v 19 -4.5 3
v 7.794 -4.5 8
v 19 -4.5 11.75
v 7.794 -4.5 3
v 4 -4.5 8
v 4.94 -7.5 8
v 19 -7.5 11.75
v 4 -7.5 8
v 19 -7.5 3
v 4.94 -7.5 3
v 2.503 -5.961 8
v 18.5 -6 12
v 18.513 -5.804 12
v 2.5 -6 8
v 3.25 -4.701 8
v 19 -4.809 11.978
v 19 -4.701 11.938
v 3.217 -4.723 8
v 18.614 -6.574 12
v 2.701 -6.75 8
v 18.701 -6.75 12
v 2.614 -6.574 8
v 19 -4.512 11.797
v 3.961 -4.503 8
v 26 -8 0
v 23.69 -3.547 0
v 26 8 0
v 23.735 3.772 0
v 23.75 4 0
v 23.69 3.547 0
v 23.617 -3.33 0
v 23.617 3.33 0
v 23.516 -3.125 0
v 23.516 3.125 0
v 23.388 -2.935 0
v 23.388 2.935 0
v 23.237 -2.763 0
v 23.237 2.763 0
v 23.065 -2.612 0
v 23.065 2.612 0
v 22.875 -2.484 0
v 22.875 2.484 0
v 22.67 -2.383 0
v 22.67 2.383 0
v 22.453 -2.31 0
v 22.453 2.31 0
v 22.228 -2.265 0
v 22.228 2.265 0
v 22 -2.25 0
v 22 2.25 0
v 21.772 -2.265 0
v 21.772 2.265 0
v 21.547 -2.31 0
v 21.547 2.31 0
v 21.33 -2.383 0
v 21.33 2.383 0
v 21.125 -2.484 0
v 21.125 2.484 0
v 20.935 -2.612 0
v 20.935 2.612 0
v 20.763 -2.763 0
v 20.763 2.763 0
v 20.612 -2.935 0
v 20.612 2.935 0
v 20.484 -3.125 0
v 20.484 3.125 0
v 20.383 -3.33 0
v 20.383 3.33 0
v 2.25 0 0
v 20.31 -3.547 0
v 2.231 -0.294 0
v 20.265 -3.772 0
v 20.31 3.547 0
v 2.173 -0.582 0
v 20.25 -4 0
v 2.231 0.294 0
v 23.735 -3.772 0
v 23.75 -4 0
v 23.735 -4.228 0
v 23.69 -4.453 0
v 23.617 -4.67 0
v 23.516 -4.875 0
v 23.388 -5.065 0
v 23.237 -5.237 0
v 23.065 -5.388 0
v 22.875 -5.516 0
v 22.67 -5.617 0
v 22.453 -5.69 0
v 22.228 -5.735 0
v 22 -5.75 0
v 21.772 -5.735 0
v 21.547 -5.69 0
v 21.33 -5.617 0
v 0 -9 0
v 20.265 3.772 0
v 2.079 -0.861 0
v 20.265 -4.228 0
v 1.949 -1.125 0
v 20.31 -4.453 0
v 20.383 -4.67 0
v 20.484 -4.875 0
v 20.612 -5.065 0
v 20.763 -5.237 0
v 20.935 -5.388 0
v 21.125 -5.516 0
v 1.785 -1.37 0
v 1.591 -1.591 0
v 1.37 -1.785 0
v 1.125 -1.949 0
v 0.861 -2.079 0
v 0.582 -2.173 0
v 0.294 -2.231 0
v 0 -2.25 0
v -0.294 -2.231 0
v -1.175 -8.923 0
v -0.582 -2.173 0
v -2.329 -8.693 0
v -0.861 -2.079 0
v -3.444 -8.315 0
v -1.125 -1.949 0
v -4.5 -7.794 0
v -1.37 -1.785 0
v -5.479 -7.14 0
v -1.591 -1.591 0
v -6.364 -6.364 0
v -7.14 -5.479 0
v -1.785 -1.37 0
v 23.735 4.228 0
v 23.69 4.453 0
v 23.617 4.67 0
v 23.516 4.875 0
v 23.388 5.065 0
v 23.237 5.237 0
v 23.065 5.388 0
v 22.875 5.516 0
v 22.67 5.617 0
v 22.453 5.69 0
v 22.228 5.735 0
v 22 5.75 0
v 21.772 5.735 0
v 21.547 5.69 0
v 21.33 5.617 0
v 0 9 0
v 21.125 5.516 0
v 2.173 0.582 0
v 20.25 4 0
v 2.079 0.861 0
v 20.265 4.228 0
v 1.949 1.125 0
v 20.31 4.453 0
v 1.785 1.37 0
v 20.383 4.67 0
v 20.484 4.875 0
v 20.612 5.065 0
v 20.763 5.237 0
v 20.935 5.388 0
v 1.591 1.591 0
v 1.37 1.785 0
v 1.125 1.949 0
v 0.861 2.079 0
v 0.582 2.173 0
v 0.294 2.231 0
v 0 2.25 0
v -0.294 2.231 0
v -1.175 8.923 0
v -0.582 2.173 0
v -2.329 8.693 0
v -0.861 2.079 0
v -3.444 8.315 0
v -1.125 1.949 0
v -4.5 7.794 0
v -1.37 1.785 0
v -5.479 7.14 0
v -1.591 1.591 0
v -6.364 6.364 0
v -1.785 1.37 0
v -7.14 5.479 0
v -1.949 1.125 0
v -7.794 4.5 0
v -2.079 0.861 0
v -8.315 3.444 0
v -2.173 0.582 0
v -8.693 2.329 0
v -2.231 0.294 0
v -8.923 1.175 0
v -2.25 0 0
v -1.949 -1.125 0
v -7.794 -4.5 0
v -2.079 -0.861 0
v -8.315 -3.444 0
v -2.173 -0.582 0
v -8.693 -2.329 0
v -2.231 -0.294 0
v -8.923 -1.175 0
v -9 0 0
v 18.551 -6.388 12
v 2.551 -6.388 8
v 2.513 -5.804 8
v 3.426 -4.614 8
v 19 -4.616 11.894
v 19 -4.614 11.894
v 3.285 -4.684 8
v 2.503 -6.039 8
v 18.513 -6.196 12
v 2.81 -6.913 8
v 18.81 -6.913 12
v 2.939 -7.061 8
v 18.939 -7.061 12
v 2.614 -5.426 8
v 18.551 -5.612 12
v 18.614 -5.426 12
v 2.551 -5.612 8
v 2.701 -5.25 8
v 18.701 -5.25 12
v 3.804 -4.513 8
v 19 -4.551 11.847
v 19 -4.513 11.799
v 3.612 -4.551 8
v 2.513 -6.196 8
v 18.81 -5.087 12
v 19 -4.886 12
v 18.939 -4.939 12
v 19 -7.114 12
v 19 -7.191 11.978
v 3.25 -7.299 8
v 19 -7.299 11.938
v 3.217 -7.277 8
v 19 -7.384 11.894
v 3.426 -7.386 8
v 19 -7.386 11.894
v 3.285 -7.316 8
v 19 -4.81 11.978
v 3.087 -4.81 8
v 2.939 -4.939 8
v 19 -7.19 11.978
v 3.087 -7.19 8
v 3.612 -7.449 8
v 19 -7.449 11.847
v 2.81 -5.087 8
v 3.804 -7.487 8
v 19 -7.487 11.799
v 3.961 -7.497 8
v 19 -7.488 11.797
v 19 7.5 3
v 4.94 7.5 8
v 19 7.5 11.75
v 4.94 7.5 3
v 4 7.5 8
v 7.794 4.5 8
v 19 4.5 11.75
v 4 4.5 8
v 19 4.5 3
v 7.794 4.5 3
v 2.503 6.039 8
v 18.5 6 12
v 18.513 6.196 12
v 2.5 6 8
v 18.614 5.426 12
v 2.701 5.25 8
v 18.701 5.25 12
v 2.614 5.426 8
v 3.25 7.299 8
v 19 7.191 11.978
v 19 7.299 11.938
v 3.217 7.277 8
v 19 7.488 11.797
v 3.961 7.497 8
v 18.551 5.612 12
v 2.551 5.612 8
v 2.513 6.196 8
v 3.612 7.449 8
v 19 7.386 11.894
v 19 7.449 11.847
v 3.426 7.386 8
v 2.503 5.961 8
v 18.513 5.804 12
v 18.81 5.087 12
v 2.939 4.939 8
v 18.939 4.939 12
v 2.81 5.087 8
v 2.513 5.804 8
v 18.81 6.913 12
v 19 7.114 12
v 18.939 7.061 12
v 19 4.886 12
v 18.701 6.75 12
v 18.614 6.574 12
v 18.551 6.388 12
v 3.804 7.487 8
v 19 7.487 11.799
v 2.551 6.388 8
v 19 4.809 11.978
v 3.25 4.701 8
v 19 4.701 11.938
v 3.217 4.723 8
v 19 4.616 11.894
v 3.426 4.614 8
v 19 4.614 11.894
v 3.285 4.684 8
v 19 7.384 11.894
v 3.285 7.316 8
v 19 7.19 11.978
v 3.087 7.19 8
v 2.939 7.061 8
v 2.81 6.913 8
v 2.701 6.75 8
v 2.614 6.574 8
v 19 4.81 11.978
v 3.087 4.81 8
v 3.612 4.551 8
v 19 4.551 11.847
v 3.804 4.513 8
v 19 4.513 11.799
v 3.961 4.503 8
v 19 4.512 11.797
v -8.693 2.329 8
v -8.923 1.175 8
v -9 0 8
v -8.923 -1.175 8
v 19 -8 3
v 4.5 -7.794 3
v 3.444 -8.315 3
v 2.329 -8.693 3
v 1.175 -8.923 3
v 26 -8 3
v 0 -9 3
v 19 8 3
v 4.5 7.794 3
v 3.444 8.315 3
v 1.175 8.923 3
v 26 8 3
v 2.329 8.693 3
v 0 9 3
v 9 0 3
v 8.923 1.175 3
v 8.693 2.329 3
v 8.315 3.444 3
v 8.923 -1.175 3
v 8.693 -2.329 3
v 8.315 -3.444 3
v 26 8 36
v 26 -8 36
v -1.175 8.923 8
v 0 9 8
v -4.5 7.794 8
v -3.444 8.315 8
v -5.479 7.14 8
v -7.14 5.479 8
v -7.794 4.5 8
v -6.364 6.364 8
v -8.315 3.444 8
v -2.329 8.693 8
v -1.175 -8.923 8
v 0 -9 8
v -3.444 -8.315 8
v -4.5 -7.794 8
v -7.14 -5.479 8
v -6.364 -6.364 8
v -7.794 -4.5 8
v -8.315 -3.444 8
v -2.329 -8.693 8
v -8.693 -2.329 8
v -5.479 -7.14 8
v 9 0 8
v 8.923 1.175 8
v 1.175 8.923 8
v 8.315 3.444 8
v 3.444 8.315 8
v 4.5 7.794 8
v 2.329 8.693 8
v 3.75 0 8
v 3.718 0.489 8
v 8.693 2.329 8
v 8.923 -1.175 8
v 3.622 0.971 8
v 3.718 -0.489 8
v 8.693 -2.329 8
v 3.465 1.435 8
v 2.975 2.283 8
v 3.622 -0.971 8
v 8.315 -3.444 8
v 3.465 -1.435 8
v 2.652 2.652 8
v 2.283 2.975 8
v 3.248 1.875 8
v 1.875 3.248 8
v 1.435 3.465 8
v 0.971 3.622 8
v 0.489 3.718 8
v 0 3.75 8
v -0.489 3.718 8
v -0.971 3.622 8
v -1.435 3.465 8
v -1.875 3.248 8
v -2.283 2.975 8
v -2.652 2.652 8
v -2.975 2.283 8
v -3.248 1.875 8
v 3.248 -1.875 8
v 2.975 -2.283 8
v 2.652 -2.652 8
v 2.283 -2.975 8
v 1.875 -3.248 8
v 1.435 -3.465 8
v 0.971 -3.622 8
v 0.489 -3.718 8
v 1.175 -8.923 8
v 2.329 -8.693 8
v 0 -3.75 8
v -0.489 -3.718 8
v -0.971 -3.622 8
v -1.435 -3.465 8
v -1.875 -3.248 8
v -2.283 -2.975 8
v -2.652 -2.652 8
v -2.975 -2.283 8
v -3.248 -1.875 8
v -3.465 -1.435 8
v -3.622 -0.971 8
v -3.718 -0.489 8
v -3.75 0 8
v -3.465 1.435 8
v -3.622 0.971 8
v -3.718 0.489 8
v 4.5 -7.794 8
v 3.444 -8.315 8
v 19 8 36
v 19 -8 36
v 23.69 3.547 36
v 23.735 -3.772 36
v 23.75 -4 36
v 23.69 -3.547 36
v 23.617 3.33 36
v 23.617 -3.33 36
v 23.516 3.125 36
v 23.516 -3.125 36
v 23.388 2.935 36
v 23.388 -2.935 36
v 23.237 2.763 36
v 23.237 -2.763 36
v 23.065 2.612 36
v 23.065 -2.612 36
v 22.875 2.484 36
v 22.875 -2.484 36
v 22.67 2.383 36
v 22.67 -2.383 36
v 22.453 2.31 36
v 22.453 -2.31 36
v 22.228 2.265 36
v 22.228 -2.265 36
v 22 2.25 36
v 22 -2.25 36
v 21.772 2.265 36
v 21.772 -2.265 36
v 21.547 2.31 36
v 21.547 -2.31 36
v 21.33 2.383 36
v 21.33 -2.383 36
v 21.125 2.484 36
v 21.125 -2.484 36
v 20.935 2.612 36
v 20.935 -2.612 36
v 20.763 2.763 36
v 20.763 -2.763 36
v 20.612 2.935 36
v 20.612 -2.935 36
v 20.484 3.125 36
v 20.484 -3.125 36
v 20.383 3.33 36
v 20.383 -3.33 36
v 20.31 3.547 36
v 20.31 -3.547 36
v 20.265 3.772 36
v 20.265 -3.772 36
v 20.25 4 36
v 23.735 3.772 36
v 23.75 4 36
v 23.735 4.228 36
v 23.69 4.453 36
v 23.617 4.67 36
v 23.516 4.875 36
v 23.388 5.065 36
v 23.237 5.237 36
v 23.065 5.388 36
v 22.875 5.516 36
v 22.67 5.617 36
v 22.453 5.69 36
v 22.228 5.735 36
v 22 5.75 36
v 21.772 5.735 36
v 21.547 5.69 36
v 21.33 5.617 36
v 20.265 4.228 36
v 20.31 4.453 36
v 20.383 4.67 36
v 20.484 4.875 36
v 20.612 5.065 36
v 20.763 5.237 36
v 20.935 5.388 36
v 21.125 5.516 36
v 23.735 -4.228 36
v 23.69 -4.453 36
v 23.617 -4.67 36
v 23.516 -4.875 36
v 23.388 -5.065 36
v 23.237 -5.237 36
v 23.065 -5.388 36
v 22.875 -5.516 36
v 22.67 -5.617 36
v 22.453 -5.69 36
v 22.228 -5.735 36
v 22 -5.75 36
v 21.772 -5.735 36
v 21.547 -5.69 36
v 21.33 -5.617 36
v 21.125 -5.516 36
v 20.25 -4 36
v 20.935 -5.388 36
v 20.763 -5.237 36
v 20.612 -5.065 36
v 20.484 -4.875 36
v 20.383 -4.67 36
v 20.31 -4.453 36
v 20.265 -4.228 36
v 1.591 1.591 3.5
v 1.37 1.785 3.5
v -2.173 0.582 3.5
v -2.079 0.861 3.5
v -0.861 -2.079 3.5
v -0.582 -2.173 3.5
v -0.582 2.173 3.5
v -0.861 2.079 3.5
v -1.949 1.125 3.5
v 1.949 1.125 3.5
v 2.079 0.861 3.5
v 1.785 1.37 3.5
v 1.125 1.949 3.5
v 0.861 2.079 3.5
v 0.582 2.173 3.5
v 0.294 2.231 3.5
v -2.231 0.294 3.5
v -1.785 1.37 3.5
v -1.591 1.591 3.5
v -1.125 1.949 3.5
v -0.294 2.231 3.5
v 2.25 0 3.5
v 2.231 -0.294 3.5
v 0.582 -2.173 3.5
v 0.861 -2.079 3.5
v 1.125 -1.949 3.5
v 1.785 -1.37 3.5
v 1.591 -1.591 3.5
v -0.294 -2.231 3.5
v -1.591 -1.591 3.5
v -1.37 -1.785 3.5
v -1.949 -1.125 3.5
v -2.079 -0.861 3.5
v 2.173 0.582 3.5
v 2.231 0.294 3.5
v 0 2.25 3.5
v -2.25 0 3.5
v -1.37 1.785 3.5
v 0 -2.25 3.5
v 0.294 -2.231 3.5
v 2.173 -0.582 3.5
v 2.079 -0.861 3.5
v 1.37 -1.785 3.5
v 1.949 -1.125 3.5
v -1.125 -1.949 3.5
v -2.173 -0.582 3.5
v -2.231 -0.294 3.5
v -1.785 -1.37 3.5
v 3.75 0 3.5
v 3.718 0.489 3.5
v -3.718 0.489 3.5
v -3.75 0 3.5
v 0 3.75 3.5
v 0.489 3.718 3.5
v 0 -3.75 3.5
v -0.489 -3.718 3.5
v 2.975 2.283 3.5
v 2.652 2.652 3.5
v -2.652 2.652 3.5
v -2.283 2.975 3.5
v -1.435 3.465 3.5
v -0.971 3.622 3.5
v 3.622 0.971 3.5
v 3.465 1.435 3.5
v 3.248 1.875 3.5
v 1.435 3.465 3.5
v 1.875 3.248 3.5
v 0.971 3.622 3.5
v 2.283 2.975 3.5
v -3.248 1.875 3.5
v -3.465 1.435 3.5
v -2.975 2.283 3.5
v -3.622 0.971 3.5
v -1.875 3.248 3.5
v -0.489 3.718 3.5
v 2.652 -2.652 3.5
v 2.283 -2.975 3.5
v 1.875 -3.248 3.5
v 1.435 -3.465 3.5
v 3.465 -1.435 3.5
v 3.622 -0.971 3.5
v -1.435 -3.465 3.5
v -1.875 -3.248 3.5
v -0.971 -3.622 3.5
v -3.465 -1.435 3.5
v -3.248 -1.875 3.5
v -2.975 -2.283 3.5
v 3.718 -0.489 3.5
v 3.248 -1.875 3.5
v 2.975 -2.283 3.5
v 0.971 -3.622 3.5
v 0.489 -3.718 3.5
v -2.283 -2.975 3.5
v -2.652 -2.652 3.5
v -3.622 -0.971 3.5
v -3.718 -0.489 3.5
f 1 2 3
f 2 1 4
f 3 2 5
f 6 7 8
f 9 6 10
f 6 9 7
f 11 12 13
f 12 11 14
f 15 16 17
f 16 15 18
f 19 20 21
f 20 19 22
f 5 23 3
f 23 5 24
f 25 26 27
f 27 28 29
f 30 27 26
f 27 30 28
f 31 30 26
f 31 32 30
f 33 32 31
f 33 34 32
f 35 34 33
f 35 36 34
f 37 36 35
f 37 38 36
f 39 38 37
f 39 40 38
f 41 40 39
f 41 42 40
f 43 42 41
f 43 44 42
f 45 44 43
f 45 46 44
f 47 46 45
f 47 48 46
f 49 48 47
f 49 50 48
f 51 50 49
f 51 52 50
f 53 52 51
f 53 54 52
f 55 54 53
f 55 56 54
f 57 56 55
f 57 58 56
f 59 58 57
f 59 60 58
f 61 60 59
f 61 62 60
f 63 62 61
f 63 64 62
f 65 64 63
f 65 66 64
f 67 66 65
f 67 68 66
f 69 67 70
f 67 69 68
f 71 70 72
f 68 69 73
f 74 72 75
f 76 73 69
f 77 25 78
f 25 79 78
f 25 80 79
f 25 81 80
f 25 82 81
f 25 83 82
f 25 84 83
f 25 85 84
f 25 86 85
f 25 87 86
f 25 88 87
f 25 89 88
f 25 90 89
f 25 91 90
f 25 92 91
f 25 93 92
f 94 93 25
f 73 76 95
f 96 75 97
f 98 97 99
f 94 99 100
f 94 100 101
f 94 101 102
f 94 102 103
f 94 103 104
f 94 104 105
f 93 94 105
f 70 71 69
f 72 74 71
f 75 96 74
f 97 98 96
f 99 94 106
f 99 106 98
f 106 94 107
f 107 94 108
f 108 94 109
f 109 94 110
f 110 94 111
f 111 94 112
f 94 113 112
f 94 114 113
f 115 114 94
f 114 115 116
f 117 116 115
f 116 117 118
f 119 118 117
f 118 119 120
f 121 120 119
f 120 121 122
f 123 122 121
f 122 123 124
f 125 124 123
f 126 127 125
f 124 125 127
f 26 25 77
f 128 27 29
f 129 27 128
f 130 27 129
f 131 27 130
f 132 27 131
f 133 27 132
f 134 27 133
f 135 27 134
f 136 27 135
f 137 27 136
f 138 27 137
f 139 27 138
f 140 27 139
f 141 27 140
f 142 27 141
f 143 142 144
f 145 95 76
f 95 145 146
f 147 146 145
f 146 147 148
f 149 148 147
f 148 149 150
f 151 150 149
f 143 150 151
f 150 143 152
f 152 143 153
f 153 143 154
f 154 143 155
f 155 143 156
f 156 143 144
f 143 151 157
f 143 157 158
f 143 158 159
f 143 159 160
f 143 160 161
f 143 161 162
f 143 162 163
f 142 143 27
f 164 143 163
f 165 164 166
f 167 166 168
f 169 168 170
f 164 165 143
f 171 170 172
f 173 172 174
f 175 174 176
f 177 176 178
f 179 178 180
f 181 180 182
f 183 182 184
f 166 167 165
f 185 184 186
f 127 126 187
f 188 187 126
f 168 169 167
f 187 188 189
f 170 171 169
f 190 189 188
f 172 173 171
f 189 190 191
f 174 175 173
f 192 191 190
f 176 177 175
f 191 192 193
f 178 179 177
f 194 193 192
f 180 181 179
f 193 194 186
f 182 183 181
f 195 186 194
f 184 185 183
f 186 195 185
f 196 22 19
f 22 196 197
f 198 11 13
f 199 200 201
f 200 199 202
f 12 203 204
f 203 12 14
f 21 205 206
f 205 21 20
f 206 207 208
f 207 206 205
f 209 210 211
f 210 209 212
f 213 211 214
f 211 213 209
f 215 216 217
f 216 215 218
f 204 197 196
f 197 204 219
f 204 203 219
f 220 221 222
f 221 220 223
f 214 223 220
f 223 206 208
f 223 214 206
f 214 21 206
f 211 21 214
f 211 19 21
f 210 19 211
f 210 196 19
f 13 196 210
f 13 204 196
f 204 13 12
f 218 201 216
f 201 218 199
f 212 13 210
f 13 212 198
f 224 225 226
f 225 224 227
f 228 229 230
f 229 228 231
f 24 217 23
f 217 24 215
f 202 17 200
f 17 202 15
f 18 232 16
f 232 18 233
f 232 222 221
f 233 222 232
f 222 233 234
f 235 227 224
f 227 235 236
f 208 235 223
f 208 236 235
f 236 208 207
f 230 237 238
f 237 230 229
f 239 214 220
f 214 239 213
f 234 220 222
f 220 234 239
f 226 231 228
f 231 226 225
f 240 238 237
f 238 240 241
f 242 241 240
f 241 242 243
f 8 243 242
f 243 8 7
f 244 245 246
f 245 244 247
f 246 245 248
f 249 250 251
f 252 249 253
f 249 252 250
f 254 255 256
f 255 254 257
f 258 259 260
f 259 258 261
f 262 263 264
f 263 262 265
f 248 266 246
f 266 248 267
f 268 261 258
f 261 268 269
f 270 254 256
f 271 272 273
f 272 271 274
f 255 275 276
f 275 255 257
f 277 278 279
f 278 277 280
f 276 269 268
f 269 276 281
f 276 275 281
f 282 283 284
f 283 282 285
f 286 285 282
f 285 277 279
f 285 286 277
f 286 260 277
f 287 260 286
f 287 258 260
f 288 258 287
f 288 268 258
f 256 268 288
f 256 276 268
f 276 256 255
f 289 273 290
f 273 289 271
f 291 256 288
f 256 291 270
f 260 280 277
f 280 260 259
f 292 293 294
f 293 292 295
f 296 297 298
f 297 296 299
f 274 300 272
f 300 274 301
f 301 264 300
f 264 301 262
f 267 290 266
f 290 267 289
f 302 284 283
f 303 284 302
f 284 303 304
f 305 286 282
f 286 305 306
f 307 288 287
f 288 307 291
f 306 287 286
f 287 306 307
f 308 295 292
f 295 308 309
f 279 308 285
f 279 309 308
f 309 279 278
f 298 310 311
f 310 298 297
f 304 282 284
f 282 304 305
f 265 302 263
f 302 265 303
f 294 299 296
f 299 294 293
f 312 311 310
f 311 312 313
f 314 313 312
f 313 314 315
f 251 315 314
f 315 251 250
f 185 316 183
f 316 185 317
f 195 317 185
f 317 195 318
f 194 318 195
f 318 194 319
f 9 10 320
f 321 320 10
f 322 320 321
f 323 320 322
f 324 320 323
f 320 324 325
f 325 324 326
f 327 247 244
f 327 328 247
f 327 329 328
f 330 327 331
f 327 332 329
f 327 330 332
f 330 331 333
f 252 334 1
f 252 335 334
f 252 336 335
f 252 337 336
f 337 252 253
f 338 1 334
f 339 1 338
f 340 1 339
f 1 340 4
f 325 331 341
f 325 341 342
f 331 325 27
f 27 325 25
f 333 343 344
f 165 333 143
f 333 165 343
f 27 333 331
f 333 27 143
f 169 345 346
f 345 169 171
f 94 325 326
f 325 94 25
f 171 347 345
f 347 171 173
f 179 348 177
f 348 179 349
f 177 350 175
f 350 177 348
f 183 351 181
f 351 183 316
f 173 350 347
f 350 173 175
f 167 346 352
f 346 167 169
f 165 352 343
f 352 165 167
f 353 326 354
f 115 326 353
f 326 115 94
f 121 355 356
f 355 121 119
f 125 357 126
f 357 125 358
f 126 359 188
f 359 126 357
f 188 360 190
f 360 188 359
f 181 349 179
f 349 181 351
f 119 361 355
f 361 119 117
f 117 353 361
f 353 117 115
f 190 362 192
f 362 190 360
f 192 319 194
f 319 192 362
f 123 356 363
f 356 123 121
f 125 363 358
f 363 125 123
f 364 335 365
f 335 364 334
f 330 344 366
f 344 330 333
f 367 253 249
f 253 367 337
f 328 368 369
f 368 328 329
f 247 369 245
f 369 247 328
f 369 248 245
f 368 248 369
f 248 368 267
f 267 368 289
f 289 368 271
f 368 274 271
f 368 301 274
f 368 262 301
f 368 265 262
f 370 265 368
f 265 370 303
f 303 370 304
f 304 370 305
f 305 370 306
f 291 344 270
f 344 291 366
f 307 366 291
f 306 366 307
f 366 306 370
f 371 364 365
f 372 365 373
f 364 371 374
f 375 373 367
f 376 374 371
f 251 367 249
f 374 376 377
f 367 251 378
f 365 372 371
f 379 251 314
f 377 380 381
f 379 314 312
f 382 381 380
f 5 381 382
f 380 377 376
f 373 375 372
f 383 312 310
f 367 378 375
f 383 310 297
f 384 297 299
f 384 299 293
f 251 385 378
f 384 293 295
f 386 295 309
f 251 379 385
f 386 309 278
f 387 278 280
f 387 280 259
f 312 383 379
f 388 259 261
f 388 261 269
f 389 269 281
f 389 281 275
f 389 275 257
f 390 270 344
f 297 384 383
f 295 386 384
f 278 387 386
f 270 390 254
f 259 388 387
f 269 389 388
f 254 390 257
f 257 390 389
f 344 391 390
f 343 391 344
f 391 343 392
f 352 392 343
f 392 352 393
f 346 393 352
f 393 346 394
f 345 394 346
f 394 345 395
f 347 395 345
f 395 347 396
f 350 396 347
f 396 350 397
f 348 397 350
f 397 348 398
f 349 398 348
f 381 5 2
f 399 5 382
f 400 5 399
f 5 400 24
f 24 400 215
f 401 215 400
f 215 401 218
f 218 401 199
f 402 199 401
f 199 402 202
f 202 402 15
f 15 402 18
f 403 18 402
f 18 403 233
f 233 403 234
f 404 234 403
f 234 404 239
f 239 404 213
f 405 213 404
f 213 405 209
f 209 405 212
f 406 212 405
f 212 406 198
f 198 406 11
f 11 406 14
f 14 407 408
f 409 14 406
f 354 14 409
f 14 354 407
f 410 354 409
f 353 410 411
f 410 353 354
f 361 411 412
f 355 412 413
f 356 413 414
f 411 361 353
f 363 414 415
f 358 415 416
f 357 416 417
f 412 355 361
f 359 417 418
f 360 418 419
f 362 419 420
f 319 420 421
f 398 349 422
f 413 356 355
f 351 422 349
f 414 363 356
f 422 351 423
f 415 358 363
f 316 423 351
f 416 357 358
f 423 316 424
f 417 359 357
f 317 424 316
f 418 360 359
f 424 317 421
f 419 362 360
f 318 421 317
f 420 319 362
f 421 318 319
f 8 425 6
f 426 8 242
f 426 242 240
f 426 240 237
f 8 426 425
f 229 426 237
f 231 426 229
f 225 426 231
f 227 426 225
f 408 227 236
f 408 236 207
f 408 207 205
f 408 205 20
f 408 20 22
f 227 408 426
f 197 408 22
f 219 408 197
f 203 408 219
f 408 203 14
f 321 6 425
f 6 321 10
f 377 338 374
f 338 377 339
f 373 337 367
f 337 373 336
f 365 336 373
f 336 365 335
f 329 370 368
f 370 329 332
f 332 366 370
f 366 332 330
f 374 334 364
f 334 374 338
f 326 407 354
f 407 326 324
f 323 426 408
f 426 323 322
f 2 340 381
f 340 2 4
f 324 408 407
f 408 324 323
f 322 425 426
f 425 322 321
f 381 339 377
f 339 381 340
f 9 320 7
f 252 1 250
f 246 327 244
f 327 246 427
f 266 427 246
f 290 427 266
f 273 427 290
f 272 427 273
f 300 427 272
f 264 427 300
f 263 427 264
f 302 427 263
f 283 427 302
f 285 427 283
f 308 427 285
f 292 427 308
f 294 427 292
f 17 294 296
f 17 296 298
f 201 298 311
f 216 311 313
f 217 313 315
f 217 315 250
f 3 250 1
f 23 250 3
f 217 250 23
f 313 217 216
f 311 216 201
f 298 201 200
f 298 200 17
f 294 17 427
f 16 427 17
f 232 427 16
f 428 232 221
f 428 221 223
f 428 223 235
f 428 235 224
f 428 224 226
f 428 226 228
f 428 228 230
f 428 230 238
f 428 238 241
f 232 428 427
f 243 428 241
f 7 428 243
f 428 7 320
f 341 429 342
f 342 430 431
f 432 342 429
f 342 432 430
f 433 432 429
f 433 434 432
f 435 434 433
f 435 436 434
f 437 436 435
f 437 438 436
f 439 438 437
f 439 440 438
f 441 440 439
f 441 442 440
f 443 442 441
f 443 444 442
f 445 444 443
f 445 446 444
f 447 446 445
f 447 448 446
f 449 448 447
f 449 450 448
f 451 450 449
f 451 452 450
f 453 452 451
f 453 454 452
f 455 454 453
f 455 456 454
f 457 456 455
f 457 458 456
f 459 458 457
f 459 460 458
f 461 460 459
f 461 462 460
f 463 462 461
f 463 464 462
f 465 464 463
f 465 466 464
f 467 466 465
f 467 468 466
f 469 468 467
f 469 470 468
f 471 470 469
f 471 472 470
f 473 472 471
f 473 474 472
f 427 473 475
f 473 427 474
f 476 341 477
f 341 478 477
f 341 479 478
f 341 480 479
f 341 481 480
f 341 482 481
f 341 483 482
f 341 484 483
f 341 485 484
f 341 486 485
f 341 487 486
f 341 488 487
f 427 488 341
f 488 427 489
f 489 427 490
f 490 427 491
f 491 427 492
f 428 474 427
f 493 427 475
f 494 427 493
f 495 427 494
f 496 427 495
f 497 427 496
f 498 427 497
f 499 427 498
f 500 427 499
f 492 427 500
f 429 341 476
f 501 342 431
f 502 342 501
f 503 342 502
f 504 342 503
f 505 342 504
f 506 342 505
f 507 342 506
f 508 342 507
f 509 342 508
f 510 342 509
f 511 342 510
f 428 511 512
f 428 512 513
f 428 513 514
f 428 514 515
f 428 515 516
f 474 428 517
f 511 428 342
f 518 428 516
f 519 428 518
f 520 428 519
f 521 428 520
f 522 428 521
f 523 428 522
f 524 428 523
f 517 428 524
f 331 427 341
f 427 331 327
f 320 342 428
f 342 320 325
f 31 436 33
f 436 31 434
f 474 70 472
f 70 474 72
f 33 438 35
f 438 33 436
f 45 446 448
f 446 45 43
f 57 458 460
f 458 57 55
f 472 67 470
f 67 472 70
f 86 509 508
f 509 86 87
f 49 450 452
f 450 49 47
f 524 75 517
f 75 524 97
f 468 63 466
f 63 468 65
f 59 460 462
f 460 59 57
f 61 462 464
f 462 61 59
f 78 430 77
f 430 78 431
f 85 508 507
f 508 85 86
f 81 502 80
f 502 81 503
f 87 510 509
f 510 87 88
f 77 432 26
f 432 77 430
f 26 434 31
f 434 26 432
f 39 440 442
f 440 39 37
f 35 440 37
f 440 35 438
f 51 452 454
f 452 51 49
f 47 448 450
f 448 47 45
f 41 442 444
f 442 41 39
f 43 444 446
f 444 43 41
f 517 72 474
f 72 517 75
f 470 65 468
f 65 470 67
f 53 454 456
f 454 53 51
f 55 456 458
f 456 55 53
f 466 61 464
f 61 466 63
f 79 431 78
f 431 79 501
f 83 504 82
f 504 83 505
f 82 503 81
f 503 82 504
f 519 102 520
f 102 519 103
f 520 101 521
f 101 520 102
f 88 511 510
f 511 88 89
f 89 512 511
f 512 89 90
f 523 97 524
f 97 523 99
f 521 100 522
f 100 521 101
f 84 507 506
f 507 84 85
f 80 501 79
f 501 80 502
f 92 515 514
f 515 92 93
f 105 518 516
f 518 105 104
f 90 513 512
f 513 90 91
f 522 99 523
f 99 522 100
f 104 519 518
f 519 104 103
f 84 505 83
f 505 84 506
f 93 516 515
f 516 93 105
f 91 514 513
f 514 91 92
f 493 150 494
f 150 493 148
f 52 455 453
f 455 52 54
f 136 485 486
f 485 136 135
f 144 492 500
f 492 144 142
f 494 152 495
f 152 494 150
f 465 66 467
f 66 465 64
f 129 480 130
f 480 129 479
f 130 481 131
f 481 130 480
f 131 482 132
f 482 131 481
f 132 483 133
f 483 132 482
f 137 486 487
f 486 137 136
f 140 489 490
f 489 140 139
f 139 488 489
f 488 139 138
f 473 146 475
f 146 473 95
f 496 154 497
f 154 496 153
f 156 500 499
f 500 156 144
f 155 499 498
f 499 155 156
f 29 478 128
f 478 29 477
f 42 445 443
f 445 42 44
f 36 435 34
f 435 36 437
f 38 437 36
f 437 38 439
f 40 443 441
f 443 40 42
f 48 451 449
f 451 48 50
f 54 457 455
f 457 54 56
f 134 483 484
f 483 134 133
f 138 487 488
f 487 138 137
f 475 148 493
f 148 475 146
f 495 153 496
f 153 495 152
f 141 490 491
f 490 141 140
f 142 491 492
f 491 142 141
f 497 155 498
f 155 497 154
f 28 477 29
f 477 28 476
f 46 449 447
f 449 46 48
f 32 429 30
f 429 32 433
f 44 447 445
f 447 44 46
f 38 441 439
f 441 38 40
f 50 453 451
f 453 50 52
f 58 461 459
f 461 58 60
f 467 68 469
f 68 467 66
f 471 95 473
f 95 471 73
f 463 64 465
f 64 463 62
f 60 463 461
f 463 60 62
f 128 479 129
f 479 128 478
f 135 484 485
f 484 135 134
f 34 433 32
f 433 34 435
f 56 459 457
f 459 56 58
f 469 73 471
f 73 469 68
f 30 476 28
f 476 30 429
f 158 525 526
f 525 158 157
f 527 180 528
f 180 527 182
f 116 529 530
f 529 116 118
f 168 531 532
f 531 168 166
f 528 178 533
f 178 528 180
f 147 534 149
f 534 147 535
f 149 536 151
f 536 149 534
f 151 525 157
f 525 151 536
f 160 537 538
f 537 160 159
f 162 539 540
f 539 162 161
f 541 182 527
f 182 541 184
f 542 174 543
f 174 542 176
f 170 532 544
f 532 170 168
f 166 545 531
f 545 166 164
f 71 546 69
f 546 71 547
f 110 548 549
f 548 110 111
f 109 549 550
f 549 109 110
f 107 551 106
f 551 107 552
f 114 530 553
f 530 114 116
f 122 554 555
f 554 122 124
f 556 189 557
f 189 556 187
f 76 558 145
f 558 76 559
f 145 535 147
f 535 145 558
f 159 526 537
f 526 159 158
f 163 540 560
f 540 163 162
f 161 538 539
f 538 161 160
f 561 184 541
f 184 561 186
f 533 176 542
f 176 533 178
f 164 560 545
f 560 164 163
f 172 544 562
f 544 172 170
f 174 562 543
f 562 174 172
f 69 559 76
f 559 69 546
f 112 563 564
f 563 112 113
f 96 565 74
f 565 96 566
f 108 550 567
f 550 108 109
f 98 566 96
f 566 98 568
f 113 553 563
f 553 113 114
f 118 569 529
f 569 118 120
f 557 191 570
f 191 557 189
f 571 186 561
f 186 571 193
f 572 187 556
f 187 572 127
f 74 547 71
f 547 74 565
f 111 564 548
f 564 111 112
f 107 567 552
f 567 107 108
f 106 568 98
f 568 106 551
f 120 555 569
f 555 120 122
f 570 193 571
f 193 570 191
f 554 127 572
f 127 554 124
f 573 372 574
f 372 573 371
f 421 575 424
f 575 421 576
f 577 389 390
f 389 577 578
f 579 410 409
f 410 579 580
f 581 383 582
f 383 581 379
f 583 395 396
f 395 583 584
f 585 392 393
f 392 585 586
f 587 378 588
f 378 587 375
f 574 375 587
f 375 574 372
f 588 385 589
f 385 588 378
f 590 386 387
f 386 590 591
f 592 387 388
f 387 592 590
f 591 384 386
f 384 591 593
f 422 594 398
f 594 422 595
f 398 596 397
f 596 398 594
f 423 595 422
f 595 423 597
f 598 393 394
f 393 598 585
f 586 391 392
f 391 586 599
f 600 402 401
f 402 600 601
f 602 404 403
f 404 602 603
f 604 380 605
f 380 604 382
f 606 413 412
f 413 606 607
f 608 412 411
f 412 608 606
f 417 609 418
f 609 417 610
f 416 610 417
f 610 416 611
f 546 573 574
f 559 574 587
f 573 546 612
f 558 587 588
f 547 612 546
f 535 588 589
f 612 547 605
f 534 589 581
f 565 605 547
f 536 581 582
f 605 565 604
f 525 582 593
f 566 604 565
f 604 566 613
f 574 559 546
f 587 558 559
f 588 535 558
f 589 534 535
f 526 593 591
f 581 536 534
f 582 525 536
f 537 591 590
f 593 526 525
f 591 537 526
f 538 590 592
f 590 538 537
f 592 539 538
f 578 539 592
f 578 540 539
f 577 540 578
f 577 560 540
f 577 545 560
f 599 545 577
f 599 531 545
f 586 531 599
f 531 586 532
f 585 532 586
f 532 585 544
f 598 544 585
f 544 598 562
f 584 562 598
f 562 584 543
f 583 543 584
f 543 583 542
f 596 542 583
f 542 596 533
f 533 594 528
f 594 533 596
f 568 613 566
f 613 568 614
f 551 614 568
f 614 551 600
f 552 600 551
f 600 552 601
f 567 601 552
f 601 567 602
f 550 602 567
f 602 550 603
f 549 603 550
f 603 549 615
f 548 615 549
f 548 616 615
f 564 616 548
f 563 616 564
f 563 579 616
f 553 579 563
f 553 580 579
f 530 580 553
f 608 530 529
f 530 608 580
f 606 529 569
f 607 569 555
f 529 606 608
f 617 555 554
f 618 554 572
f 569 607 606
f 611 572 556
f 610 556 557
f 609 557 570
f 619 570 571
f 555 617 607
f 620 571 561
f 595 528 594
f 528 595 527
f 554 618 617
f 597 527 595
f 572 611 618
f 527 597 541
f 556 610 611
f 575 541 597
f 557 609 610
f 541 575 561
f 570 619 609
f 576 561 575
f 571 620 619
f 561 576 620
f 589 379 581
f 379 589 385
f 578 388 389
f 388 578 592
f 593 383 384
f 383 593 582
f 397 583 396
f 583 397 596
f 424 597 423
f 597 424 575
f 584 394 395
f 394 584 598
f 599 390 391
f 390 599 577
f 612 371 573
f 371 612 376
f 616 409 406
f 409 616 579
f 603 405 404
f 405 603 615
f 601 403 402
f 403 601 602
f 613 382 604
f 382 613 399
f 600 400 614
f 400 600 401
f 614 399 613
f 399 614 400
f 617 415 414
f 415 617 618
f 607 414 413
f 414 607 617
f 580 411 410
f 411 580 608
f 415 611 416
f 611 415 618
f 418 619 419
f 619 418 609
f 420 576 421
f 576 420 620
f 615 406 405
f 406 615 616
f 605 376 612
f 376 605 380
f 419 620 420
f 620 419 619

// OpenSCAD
// Print base down; assembly translates z=-8 relative to knee axis.
$fn=48;
module knee_support() {
    difference() {
        union() {
            linear_extrude(3) hull() {
                circle(d=18);
                translate([22.5,0]) square([7,16],center=true);
            }
            cylinder(d=18,h=8);
            translate([19,-8,0]) cube([7,16,36]);
            for(y=[-6,6]) hull() {
                translate([0,y,0]) cylinder(d=3,h=7);
                translate([20,y,0]) cylinder(d=3,h=12);
            }
        }
        translate([0,0,-1]) cylinder(d=4.5,h=10);
        translate([0,0,3.5]) cylinder(d=7.5,h=5);
        for(y=[-4,4]) translate([22,y,-1]) cylinder(d=3.5,h=38);
    }
}
knee_support();
